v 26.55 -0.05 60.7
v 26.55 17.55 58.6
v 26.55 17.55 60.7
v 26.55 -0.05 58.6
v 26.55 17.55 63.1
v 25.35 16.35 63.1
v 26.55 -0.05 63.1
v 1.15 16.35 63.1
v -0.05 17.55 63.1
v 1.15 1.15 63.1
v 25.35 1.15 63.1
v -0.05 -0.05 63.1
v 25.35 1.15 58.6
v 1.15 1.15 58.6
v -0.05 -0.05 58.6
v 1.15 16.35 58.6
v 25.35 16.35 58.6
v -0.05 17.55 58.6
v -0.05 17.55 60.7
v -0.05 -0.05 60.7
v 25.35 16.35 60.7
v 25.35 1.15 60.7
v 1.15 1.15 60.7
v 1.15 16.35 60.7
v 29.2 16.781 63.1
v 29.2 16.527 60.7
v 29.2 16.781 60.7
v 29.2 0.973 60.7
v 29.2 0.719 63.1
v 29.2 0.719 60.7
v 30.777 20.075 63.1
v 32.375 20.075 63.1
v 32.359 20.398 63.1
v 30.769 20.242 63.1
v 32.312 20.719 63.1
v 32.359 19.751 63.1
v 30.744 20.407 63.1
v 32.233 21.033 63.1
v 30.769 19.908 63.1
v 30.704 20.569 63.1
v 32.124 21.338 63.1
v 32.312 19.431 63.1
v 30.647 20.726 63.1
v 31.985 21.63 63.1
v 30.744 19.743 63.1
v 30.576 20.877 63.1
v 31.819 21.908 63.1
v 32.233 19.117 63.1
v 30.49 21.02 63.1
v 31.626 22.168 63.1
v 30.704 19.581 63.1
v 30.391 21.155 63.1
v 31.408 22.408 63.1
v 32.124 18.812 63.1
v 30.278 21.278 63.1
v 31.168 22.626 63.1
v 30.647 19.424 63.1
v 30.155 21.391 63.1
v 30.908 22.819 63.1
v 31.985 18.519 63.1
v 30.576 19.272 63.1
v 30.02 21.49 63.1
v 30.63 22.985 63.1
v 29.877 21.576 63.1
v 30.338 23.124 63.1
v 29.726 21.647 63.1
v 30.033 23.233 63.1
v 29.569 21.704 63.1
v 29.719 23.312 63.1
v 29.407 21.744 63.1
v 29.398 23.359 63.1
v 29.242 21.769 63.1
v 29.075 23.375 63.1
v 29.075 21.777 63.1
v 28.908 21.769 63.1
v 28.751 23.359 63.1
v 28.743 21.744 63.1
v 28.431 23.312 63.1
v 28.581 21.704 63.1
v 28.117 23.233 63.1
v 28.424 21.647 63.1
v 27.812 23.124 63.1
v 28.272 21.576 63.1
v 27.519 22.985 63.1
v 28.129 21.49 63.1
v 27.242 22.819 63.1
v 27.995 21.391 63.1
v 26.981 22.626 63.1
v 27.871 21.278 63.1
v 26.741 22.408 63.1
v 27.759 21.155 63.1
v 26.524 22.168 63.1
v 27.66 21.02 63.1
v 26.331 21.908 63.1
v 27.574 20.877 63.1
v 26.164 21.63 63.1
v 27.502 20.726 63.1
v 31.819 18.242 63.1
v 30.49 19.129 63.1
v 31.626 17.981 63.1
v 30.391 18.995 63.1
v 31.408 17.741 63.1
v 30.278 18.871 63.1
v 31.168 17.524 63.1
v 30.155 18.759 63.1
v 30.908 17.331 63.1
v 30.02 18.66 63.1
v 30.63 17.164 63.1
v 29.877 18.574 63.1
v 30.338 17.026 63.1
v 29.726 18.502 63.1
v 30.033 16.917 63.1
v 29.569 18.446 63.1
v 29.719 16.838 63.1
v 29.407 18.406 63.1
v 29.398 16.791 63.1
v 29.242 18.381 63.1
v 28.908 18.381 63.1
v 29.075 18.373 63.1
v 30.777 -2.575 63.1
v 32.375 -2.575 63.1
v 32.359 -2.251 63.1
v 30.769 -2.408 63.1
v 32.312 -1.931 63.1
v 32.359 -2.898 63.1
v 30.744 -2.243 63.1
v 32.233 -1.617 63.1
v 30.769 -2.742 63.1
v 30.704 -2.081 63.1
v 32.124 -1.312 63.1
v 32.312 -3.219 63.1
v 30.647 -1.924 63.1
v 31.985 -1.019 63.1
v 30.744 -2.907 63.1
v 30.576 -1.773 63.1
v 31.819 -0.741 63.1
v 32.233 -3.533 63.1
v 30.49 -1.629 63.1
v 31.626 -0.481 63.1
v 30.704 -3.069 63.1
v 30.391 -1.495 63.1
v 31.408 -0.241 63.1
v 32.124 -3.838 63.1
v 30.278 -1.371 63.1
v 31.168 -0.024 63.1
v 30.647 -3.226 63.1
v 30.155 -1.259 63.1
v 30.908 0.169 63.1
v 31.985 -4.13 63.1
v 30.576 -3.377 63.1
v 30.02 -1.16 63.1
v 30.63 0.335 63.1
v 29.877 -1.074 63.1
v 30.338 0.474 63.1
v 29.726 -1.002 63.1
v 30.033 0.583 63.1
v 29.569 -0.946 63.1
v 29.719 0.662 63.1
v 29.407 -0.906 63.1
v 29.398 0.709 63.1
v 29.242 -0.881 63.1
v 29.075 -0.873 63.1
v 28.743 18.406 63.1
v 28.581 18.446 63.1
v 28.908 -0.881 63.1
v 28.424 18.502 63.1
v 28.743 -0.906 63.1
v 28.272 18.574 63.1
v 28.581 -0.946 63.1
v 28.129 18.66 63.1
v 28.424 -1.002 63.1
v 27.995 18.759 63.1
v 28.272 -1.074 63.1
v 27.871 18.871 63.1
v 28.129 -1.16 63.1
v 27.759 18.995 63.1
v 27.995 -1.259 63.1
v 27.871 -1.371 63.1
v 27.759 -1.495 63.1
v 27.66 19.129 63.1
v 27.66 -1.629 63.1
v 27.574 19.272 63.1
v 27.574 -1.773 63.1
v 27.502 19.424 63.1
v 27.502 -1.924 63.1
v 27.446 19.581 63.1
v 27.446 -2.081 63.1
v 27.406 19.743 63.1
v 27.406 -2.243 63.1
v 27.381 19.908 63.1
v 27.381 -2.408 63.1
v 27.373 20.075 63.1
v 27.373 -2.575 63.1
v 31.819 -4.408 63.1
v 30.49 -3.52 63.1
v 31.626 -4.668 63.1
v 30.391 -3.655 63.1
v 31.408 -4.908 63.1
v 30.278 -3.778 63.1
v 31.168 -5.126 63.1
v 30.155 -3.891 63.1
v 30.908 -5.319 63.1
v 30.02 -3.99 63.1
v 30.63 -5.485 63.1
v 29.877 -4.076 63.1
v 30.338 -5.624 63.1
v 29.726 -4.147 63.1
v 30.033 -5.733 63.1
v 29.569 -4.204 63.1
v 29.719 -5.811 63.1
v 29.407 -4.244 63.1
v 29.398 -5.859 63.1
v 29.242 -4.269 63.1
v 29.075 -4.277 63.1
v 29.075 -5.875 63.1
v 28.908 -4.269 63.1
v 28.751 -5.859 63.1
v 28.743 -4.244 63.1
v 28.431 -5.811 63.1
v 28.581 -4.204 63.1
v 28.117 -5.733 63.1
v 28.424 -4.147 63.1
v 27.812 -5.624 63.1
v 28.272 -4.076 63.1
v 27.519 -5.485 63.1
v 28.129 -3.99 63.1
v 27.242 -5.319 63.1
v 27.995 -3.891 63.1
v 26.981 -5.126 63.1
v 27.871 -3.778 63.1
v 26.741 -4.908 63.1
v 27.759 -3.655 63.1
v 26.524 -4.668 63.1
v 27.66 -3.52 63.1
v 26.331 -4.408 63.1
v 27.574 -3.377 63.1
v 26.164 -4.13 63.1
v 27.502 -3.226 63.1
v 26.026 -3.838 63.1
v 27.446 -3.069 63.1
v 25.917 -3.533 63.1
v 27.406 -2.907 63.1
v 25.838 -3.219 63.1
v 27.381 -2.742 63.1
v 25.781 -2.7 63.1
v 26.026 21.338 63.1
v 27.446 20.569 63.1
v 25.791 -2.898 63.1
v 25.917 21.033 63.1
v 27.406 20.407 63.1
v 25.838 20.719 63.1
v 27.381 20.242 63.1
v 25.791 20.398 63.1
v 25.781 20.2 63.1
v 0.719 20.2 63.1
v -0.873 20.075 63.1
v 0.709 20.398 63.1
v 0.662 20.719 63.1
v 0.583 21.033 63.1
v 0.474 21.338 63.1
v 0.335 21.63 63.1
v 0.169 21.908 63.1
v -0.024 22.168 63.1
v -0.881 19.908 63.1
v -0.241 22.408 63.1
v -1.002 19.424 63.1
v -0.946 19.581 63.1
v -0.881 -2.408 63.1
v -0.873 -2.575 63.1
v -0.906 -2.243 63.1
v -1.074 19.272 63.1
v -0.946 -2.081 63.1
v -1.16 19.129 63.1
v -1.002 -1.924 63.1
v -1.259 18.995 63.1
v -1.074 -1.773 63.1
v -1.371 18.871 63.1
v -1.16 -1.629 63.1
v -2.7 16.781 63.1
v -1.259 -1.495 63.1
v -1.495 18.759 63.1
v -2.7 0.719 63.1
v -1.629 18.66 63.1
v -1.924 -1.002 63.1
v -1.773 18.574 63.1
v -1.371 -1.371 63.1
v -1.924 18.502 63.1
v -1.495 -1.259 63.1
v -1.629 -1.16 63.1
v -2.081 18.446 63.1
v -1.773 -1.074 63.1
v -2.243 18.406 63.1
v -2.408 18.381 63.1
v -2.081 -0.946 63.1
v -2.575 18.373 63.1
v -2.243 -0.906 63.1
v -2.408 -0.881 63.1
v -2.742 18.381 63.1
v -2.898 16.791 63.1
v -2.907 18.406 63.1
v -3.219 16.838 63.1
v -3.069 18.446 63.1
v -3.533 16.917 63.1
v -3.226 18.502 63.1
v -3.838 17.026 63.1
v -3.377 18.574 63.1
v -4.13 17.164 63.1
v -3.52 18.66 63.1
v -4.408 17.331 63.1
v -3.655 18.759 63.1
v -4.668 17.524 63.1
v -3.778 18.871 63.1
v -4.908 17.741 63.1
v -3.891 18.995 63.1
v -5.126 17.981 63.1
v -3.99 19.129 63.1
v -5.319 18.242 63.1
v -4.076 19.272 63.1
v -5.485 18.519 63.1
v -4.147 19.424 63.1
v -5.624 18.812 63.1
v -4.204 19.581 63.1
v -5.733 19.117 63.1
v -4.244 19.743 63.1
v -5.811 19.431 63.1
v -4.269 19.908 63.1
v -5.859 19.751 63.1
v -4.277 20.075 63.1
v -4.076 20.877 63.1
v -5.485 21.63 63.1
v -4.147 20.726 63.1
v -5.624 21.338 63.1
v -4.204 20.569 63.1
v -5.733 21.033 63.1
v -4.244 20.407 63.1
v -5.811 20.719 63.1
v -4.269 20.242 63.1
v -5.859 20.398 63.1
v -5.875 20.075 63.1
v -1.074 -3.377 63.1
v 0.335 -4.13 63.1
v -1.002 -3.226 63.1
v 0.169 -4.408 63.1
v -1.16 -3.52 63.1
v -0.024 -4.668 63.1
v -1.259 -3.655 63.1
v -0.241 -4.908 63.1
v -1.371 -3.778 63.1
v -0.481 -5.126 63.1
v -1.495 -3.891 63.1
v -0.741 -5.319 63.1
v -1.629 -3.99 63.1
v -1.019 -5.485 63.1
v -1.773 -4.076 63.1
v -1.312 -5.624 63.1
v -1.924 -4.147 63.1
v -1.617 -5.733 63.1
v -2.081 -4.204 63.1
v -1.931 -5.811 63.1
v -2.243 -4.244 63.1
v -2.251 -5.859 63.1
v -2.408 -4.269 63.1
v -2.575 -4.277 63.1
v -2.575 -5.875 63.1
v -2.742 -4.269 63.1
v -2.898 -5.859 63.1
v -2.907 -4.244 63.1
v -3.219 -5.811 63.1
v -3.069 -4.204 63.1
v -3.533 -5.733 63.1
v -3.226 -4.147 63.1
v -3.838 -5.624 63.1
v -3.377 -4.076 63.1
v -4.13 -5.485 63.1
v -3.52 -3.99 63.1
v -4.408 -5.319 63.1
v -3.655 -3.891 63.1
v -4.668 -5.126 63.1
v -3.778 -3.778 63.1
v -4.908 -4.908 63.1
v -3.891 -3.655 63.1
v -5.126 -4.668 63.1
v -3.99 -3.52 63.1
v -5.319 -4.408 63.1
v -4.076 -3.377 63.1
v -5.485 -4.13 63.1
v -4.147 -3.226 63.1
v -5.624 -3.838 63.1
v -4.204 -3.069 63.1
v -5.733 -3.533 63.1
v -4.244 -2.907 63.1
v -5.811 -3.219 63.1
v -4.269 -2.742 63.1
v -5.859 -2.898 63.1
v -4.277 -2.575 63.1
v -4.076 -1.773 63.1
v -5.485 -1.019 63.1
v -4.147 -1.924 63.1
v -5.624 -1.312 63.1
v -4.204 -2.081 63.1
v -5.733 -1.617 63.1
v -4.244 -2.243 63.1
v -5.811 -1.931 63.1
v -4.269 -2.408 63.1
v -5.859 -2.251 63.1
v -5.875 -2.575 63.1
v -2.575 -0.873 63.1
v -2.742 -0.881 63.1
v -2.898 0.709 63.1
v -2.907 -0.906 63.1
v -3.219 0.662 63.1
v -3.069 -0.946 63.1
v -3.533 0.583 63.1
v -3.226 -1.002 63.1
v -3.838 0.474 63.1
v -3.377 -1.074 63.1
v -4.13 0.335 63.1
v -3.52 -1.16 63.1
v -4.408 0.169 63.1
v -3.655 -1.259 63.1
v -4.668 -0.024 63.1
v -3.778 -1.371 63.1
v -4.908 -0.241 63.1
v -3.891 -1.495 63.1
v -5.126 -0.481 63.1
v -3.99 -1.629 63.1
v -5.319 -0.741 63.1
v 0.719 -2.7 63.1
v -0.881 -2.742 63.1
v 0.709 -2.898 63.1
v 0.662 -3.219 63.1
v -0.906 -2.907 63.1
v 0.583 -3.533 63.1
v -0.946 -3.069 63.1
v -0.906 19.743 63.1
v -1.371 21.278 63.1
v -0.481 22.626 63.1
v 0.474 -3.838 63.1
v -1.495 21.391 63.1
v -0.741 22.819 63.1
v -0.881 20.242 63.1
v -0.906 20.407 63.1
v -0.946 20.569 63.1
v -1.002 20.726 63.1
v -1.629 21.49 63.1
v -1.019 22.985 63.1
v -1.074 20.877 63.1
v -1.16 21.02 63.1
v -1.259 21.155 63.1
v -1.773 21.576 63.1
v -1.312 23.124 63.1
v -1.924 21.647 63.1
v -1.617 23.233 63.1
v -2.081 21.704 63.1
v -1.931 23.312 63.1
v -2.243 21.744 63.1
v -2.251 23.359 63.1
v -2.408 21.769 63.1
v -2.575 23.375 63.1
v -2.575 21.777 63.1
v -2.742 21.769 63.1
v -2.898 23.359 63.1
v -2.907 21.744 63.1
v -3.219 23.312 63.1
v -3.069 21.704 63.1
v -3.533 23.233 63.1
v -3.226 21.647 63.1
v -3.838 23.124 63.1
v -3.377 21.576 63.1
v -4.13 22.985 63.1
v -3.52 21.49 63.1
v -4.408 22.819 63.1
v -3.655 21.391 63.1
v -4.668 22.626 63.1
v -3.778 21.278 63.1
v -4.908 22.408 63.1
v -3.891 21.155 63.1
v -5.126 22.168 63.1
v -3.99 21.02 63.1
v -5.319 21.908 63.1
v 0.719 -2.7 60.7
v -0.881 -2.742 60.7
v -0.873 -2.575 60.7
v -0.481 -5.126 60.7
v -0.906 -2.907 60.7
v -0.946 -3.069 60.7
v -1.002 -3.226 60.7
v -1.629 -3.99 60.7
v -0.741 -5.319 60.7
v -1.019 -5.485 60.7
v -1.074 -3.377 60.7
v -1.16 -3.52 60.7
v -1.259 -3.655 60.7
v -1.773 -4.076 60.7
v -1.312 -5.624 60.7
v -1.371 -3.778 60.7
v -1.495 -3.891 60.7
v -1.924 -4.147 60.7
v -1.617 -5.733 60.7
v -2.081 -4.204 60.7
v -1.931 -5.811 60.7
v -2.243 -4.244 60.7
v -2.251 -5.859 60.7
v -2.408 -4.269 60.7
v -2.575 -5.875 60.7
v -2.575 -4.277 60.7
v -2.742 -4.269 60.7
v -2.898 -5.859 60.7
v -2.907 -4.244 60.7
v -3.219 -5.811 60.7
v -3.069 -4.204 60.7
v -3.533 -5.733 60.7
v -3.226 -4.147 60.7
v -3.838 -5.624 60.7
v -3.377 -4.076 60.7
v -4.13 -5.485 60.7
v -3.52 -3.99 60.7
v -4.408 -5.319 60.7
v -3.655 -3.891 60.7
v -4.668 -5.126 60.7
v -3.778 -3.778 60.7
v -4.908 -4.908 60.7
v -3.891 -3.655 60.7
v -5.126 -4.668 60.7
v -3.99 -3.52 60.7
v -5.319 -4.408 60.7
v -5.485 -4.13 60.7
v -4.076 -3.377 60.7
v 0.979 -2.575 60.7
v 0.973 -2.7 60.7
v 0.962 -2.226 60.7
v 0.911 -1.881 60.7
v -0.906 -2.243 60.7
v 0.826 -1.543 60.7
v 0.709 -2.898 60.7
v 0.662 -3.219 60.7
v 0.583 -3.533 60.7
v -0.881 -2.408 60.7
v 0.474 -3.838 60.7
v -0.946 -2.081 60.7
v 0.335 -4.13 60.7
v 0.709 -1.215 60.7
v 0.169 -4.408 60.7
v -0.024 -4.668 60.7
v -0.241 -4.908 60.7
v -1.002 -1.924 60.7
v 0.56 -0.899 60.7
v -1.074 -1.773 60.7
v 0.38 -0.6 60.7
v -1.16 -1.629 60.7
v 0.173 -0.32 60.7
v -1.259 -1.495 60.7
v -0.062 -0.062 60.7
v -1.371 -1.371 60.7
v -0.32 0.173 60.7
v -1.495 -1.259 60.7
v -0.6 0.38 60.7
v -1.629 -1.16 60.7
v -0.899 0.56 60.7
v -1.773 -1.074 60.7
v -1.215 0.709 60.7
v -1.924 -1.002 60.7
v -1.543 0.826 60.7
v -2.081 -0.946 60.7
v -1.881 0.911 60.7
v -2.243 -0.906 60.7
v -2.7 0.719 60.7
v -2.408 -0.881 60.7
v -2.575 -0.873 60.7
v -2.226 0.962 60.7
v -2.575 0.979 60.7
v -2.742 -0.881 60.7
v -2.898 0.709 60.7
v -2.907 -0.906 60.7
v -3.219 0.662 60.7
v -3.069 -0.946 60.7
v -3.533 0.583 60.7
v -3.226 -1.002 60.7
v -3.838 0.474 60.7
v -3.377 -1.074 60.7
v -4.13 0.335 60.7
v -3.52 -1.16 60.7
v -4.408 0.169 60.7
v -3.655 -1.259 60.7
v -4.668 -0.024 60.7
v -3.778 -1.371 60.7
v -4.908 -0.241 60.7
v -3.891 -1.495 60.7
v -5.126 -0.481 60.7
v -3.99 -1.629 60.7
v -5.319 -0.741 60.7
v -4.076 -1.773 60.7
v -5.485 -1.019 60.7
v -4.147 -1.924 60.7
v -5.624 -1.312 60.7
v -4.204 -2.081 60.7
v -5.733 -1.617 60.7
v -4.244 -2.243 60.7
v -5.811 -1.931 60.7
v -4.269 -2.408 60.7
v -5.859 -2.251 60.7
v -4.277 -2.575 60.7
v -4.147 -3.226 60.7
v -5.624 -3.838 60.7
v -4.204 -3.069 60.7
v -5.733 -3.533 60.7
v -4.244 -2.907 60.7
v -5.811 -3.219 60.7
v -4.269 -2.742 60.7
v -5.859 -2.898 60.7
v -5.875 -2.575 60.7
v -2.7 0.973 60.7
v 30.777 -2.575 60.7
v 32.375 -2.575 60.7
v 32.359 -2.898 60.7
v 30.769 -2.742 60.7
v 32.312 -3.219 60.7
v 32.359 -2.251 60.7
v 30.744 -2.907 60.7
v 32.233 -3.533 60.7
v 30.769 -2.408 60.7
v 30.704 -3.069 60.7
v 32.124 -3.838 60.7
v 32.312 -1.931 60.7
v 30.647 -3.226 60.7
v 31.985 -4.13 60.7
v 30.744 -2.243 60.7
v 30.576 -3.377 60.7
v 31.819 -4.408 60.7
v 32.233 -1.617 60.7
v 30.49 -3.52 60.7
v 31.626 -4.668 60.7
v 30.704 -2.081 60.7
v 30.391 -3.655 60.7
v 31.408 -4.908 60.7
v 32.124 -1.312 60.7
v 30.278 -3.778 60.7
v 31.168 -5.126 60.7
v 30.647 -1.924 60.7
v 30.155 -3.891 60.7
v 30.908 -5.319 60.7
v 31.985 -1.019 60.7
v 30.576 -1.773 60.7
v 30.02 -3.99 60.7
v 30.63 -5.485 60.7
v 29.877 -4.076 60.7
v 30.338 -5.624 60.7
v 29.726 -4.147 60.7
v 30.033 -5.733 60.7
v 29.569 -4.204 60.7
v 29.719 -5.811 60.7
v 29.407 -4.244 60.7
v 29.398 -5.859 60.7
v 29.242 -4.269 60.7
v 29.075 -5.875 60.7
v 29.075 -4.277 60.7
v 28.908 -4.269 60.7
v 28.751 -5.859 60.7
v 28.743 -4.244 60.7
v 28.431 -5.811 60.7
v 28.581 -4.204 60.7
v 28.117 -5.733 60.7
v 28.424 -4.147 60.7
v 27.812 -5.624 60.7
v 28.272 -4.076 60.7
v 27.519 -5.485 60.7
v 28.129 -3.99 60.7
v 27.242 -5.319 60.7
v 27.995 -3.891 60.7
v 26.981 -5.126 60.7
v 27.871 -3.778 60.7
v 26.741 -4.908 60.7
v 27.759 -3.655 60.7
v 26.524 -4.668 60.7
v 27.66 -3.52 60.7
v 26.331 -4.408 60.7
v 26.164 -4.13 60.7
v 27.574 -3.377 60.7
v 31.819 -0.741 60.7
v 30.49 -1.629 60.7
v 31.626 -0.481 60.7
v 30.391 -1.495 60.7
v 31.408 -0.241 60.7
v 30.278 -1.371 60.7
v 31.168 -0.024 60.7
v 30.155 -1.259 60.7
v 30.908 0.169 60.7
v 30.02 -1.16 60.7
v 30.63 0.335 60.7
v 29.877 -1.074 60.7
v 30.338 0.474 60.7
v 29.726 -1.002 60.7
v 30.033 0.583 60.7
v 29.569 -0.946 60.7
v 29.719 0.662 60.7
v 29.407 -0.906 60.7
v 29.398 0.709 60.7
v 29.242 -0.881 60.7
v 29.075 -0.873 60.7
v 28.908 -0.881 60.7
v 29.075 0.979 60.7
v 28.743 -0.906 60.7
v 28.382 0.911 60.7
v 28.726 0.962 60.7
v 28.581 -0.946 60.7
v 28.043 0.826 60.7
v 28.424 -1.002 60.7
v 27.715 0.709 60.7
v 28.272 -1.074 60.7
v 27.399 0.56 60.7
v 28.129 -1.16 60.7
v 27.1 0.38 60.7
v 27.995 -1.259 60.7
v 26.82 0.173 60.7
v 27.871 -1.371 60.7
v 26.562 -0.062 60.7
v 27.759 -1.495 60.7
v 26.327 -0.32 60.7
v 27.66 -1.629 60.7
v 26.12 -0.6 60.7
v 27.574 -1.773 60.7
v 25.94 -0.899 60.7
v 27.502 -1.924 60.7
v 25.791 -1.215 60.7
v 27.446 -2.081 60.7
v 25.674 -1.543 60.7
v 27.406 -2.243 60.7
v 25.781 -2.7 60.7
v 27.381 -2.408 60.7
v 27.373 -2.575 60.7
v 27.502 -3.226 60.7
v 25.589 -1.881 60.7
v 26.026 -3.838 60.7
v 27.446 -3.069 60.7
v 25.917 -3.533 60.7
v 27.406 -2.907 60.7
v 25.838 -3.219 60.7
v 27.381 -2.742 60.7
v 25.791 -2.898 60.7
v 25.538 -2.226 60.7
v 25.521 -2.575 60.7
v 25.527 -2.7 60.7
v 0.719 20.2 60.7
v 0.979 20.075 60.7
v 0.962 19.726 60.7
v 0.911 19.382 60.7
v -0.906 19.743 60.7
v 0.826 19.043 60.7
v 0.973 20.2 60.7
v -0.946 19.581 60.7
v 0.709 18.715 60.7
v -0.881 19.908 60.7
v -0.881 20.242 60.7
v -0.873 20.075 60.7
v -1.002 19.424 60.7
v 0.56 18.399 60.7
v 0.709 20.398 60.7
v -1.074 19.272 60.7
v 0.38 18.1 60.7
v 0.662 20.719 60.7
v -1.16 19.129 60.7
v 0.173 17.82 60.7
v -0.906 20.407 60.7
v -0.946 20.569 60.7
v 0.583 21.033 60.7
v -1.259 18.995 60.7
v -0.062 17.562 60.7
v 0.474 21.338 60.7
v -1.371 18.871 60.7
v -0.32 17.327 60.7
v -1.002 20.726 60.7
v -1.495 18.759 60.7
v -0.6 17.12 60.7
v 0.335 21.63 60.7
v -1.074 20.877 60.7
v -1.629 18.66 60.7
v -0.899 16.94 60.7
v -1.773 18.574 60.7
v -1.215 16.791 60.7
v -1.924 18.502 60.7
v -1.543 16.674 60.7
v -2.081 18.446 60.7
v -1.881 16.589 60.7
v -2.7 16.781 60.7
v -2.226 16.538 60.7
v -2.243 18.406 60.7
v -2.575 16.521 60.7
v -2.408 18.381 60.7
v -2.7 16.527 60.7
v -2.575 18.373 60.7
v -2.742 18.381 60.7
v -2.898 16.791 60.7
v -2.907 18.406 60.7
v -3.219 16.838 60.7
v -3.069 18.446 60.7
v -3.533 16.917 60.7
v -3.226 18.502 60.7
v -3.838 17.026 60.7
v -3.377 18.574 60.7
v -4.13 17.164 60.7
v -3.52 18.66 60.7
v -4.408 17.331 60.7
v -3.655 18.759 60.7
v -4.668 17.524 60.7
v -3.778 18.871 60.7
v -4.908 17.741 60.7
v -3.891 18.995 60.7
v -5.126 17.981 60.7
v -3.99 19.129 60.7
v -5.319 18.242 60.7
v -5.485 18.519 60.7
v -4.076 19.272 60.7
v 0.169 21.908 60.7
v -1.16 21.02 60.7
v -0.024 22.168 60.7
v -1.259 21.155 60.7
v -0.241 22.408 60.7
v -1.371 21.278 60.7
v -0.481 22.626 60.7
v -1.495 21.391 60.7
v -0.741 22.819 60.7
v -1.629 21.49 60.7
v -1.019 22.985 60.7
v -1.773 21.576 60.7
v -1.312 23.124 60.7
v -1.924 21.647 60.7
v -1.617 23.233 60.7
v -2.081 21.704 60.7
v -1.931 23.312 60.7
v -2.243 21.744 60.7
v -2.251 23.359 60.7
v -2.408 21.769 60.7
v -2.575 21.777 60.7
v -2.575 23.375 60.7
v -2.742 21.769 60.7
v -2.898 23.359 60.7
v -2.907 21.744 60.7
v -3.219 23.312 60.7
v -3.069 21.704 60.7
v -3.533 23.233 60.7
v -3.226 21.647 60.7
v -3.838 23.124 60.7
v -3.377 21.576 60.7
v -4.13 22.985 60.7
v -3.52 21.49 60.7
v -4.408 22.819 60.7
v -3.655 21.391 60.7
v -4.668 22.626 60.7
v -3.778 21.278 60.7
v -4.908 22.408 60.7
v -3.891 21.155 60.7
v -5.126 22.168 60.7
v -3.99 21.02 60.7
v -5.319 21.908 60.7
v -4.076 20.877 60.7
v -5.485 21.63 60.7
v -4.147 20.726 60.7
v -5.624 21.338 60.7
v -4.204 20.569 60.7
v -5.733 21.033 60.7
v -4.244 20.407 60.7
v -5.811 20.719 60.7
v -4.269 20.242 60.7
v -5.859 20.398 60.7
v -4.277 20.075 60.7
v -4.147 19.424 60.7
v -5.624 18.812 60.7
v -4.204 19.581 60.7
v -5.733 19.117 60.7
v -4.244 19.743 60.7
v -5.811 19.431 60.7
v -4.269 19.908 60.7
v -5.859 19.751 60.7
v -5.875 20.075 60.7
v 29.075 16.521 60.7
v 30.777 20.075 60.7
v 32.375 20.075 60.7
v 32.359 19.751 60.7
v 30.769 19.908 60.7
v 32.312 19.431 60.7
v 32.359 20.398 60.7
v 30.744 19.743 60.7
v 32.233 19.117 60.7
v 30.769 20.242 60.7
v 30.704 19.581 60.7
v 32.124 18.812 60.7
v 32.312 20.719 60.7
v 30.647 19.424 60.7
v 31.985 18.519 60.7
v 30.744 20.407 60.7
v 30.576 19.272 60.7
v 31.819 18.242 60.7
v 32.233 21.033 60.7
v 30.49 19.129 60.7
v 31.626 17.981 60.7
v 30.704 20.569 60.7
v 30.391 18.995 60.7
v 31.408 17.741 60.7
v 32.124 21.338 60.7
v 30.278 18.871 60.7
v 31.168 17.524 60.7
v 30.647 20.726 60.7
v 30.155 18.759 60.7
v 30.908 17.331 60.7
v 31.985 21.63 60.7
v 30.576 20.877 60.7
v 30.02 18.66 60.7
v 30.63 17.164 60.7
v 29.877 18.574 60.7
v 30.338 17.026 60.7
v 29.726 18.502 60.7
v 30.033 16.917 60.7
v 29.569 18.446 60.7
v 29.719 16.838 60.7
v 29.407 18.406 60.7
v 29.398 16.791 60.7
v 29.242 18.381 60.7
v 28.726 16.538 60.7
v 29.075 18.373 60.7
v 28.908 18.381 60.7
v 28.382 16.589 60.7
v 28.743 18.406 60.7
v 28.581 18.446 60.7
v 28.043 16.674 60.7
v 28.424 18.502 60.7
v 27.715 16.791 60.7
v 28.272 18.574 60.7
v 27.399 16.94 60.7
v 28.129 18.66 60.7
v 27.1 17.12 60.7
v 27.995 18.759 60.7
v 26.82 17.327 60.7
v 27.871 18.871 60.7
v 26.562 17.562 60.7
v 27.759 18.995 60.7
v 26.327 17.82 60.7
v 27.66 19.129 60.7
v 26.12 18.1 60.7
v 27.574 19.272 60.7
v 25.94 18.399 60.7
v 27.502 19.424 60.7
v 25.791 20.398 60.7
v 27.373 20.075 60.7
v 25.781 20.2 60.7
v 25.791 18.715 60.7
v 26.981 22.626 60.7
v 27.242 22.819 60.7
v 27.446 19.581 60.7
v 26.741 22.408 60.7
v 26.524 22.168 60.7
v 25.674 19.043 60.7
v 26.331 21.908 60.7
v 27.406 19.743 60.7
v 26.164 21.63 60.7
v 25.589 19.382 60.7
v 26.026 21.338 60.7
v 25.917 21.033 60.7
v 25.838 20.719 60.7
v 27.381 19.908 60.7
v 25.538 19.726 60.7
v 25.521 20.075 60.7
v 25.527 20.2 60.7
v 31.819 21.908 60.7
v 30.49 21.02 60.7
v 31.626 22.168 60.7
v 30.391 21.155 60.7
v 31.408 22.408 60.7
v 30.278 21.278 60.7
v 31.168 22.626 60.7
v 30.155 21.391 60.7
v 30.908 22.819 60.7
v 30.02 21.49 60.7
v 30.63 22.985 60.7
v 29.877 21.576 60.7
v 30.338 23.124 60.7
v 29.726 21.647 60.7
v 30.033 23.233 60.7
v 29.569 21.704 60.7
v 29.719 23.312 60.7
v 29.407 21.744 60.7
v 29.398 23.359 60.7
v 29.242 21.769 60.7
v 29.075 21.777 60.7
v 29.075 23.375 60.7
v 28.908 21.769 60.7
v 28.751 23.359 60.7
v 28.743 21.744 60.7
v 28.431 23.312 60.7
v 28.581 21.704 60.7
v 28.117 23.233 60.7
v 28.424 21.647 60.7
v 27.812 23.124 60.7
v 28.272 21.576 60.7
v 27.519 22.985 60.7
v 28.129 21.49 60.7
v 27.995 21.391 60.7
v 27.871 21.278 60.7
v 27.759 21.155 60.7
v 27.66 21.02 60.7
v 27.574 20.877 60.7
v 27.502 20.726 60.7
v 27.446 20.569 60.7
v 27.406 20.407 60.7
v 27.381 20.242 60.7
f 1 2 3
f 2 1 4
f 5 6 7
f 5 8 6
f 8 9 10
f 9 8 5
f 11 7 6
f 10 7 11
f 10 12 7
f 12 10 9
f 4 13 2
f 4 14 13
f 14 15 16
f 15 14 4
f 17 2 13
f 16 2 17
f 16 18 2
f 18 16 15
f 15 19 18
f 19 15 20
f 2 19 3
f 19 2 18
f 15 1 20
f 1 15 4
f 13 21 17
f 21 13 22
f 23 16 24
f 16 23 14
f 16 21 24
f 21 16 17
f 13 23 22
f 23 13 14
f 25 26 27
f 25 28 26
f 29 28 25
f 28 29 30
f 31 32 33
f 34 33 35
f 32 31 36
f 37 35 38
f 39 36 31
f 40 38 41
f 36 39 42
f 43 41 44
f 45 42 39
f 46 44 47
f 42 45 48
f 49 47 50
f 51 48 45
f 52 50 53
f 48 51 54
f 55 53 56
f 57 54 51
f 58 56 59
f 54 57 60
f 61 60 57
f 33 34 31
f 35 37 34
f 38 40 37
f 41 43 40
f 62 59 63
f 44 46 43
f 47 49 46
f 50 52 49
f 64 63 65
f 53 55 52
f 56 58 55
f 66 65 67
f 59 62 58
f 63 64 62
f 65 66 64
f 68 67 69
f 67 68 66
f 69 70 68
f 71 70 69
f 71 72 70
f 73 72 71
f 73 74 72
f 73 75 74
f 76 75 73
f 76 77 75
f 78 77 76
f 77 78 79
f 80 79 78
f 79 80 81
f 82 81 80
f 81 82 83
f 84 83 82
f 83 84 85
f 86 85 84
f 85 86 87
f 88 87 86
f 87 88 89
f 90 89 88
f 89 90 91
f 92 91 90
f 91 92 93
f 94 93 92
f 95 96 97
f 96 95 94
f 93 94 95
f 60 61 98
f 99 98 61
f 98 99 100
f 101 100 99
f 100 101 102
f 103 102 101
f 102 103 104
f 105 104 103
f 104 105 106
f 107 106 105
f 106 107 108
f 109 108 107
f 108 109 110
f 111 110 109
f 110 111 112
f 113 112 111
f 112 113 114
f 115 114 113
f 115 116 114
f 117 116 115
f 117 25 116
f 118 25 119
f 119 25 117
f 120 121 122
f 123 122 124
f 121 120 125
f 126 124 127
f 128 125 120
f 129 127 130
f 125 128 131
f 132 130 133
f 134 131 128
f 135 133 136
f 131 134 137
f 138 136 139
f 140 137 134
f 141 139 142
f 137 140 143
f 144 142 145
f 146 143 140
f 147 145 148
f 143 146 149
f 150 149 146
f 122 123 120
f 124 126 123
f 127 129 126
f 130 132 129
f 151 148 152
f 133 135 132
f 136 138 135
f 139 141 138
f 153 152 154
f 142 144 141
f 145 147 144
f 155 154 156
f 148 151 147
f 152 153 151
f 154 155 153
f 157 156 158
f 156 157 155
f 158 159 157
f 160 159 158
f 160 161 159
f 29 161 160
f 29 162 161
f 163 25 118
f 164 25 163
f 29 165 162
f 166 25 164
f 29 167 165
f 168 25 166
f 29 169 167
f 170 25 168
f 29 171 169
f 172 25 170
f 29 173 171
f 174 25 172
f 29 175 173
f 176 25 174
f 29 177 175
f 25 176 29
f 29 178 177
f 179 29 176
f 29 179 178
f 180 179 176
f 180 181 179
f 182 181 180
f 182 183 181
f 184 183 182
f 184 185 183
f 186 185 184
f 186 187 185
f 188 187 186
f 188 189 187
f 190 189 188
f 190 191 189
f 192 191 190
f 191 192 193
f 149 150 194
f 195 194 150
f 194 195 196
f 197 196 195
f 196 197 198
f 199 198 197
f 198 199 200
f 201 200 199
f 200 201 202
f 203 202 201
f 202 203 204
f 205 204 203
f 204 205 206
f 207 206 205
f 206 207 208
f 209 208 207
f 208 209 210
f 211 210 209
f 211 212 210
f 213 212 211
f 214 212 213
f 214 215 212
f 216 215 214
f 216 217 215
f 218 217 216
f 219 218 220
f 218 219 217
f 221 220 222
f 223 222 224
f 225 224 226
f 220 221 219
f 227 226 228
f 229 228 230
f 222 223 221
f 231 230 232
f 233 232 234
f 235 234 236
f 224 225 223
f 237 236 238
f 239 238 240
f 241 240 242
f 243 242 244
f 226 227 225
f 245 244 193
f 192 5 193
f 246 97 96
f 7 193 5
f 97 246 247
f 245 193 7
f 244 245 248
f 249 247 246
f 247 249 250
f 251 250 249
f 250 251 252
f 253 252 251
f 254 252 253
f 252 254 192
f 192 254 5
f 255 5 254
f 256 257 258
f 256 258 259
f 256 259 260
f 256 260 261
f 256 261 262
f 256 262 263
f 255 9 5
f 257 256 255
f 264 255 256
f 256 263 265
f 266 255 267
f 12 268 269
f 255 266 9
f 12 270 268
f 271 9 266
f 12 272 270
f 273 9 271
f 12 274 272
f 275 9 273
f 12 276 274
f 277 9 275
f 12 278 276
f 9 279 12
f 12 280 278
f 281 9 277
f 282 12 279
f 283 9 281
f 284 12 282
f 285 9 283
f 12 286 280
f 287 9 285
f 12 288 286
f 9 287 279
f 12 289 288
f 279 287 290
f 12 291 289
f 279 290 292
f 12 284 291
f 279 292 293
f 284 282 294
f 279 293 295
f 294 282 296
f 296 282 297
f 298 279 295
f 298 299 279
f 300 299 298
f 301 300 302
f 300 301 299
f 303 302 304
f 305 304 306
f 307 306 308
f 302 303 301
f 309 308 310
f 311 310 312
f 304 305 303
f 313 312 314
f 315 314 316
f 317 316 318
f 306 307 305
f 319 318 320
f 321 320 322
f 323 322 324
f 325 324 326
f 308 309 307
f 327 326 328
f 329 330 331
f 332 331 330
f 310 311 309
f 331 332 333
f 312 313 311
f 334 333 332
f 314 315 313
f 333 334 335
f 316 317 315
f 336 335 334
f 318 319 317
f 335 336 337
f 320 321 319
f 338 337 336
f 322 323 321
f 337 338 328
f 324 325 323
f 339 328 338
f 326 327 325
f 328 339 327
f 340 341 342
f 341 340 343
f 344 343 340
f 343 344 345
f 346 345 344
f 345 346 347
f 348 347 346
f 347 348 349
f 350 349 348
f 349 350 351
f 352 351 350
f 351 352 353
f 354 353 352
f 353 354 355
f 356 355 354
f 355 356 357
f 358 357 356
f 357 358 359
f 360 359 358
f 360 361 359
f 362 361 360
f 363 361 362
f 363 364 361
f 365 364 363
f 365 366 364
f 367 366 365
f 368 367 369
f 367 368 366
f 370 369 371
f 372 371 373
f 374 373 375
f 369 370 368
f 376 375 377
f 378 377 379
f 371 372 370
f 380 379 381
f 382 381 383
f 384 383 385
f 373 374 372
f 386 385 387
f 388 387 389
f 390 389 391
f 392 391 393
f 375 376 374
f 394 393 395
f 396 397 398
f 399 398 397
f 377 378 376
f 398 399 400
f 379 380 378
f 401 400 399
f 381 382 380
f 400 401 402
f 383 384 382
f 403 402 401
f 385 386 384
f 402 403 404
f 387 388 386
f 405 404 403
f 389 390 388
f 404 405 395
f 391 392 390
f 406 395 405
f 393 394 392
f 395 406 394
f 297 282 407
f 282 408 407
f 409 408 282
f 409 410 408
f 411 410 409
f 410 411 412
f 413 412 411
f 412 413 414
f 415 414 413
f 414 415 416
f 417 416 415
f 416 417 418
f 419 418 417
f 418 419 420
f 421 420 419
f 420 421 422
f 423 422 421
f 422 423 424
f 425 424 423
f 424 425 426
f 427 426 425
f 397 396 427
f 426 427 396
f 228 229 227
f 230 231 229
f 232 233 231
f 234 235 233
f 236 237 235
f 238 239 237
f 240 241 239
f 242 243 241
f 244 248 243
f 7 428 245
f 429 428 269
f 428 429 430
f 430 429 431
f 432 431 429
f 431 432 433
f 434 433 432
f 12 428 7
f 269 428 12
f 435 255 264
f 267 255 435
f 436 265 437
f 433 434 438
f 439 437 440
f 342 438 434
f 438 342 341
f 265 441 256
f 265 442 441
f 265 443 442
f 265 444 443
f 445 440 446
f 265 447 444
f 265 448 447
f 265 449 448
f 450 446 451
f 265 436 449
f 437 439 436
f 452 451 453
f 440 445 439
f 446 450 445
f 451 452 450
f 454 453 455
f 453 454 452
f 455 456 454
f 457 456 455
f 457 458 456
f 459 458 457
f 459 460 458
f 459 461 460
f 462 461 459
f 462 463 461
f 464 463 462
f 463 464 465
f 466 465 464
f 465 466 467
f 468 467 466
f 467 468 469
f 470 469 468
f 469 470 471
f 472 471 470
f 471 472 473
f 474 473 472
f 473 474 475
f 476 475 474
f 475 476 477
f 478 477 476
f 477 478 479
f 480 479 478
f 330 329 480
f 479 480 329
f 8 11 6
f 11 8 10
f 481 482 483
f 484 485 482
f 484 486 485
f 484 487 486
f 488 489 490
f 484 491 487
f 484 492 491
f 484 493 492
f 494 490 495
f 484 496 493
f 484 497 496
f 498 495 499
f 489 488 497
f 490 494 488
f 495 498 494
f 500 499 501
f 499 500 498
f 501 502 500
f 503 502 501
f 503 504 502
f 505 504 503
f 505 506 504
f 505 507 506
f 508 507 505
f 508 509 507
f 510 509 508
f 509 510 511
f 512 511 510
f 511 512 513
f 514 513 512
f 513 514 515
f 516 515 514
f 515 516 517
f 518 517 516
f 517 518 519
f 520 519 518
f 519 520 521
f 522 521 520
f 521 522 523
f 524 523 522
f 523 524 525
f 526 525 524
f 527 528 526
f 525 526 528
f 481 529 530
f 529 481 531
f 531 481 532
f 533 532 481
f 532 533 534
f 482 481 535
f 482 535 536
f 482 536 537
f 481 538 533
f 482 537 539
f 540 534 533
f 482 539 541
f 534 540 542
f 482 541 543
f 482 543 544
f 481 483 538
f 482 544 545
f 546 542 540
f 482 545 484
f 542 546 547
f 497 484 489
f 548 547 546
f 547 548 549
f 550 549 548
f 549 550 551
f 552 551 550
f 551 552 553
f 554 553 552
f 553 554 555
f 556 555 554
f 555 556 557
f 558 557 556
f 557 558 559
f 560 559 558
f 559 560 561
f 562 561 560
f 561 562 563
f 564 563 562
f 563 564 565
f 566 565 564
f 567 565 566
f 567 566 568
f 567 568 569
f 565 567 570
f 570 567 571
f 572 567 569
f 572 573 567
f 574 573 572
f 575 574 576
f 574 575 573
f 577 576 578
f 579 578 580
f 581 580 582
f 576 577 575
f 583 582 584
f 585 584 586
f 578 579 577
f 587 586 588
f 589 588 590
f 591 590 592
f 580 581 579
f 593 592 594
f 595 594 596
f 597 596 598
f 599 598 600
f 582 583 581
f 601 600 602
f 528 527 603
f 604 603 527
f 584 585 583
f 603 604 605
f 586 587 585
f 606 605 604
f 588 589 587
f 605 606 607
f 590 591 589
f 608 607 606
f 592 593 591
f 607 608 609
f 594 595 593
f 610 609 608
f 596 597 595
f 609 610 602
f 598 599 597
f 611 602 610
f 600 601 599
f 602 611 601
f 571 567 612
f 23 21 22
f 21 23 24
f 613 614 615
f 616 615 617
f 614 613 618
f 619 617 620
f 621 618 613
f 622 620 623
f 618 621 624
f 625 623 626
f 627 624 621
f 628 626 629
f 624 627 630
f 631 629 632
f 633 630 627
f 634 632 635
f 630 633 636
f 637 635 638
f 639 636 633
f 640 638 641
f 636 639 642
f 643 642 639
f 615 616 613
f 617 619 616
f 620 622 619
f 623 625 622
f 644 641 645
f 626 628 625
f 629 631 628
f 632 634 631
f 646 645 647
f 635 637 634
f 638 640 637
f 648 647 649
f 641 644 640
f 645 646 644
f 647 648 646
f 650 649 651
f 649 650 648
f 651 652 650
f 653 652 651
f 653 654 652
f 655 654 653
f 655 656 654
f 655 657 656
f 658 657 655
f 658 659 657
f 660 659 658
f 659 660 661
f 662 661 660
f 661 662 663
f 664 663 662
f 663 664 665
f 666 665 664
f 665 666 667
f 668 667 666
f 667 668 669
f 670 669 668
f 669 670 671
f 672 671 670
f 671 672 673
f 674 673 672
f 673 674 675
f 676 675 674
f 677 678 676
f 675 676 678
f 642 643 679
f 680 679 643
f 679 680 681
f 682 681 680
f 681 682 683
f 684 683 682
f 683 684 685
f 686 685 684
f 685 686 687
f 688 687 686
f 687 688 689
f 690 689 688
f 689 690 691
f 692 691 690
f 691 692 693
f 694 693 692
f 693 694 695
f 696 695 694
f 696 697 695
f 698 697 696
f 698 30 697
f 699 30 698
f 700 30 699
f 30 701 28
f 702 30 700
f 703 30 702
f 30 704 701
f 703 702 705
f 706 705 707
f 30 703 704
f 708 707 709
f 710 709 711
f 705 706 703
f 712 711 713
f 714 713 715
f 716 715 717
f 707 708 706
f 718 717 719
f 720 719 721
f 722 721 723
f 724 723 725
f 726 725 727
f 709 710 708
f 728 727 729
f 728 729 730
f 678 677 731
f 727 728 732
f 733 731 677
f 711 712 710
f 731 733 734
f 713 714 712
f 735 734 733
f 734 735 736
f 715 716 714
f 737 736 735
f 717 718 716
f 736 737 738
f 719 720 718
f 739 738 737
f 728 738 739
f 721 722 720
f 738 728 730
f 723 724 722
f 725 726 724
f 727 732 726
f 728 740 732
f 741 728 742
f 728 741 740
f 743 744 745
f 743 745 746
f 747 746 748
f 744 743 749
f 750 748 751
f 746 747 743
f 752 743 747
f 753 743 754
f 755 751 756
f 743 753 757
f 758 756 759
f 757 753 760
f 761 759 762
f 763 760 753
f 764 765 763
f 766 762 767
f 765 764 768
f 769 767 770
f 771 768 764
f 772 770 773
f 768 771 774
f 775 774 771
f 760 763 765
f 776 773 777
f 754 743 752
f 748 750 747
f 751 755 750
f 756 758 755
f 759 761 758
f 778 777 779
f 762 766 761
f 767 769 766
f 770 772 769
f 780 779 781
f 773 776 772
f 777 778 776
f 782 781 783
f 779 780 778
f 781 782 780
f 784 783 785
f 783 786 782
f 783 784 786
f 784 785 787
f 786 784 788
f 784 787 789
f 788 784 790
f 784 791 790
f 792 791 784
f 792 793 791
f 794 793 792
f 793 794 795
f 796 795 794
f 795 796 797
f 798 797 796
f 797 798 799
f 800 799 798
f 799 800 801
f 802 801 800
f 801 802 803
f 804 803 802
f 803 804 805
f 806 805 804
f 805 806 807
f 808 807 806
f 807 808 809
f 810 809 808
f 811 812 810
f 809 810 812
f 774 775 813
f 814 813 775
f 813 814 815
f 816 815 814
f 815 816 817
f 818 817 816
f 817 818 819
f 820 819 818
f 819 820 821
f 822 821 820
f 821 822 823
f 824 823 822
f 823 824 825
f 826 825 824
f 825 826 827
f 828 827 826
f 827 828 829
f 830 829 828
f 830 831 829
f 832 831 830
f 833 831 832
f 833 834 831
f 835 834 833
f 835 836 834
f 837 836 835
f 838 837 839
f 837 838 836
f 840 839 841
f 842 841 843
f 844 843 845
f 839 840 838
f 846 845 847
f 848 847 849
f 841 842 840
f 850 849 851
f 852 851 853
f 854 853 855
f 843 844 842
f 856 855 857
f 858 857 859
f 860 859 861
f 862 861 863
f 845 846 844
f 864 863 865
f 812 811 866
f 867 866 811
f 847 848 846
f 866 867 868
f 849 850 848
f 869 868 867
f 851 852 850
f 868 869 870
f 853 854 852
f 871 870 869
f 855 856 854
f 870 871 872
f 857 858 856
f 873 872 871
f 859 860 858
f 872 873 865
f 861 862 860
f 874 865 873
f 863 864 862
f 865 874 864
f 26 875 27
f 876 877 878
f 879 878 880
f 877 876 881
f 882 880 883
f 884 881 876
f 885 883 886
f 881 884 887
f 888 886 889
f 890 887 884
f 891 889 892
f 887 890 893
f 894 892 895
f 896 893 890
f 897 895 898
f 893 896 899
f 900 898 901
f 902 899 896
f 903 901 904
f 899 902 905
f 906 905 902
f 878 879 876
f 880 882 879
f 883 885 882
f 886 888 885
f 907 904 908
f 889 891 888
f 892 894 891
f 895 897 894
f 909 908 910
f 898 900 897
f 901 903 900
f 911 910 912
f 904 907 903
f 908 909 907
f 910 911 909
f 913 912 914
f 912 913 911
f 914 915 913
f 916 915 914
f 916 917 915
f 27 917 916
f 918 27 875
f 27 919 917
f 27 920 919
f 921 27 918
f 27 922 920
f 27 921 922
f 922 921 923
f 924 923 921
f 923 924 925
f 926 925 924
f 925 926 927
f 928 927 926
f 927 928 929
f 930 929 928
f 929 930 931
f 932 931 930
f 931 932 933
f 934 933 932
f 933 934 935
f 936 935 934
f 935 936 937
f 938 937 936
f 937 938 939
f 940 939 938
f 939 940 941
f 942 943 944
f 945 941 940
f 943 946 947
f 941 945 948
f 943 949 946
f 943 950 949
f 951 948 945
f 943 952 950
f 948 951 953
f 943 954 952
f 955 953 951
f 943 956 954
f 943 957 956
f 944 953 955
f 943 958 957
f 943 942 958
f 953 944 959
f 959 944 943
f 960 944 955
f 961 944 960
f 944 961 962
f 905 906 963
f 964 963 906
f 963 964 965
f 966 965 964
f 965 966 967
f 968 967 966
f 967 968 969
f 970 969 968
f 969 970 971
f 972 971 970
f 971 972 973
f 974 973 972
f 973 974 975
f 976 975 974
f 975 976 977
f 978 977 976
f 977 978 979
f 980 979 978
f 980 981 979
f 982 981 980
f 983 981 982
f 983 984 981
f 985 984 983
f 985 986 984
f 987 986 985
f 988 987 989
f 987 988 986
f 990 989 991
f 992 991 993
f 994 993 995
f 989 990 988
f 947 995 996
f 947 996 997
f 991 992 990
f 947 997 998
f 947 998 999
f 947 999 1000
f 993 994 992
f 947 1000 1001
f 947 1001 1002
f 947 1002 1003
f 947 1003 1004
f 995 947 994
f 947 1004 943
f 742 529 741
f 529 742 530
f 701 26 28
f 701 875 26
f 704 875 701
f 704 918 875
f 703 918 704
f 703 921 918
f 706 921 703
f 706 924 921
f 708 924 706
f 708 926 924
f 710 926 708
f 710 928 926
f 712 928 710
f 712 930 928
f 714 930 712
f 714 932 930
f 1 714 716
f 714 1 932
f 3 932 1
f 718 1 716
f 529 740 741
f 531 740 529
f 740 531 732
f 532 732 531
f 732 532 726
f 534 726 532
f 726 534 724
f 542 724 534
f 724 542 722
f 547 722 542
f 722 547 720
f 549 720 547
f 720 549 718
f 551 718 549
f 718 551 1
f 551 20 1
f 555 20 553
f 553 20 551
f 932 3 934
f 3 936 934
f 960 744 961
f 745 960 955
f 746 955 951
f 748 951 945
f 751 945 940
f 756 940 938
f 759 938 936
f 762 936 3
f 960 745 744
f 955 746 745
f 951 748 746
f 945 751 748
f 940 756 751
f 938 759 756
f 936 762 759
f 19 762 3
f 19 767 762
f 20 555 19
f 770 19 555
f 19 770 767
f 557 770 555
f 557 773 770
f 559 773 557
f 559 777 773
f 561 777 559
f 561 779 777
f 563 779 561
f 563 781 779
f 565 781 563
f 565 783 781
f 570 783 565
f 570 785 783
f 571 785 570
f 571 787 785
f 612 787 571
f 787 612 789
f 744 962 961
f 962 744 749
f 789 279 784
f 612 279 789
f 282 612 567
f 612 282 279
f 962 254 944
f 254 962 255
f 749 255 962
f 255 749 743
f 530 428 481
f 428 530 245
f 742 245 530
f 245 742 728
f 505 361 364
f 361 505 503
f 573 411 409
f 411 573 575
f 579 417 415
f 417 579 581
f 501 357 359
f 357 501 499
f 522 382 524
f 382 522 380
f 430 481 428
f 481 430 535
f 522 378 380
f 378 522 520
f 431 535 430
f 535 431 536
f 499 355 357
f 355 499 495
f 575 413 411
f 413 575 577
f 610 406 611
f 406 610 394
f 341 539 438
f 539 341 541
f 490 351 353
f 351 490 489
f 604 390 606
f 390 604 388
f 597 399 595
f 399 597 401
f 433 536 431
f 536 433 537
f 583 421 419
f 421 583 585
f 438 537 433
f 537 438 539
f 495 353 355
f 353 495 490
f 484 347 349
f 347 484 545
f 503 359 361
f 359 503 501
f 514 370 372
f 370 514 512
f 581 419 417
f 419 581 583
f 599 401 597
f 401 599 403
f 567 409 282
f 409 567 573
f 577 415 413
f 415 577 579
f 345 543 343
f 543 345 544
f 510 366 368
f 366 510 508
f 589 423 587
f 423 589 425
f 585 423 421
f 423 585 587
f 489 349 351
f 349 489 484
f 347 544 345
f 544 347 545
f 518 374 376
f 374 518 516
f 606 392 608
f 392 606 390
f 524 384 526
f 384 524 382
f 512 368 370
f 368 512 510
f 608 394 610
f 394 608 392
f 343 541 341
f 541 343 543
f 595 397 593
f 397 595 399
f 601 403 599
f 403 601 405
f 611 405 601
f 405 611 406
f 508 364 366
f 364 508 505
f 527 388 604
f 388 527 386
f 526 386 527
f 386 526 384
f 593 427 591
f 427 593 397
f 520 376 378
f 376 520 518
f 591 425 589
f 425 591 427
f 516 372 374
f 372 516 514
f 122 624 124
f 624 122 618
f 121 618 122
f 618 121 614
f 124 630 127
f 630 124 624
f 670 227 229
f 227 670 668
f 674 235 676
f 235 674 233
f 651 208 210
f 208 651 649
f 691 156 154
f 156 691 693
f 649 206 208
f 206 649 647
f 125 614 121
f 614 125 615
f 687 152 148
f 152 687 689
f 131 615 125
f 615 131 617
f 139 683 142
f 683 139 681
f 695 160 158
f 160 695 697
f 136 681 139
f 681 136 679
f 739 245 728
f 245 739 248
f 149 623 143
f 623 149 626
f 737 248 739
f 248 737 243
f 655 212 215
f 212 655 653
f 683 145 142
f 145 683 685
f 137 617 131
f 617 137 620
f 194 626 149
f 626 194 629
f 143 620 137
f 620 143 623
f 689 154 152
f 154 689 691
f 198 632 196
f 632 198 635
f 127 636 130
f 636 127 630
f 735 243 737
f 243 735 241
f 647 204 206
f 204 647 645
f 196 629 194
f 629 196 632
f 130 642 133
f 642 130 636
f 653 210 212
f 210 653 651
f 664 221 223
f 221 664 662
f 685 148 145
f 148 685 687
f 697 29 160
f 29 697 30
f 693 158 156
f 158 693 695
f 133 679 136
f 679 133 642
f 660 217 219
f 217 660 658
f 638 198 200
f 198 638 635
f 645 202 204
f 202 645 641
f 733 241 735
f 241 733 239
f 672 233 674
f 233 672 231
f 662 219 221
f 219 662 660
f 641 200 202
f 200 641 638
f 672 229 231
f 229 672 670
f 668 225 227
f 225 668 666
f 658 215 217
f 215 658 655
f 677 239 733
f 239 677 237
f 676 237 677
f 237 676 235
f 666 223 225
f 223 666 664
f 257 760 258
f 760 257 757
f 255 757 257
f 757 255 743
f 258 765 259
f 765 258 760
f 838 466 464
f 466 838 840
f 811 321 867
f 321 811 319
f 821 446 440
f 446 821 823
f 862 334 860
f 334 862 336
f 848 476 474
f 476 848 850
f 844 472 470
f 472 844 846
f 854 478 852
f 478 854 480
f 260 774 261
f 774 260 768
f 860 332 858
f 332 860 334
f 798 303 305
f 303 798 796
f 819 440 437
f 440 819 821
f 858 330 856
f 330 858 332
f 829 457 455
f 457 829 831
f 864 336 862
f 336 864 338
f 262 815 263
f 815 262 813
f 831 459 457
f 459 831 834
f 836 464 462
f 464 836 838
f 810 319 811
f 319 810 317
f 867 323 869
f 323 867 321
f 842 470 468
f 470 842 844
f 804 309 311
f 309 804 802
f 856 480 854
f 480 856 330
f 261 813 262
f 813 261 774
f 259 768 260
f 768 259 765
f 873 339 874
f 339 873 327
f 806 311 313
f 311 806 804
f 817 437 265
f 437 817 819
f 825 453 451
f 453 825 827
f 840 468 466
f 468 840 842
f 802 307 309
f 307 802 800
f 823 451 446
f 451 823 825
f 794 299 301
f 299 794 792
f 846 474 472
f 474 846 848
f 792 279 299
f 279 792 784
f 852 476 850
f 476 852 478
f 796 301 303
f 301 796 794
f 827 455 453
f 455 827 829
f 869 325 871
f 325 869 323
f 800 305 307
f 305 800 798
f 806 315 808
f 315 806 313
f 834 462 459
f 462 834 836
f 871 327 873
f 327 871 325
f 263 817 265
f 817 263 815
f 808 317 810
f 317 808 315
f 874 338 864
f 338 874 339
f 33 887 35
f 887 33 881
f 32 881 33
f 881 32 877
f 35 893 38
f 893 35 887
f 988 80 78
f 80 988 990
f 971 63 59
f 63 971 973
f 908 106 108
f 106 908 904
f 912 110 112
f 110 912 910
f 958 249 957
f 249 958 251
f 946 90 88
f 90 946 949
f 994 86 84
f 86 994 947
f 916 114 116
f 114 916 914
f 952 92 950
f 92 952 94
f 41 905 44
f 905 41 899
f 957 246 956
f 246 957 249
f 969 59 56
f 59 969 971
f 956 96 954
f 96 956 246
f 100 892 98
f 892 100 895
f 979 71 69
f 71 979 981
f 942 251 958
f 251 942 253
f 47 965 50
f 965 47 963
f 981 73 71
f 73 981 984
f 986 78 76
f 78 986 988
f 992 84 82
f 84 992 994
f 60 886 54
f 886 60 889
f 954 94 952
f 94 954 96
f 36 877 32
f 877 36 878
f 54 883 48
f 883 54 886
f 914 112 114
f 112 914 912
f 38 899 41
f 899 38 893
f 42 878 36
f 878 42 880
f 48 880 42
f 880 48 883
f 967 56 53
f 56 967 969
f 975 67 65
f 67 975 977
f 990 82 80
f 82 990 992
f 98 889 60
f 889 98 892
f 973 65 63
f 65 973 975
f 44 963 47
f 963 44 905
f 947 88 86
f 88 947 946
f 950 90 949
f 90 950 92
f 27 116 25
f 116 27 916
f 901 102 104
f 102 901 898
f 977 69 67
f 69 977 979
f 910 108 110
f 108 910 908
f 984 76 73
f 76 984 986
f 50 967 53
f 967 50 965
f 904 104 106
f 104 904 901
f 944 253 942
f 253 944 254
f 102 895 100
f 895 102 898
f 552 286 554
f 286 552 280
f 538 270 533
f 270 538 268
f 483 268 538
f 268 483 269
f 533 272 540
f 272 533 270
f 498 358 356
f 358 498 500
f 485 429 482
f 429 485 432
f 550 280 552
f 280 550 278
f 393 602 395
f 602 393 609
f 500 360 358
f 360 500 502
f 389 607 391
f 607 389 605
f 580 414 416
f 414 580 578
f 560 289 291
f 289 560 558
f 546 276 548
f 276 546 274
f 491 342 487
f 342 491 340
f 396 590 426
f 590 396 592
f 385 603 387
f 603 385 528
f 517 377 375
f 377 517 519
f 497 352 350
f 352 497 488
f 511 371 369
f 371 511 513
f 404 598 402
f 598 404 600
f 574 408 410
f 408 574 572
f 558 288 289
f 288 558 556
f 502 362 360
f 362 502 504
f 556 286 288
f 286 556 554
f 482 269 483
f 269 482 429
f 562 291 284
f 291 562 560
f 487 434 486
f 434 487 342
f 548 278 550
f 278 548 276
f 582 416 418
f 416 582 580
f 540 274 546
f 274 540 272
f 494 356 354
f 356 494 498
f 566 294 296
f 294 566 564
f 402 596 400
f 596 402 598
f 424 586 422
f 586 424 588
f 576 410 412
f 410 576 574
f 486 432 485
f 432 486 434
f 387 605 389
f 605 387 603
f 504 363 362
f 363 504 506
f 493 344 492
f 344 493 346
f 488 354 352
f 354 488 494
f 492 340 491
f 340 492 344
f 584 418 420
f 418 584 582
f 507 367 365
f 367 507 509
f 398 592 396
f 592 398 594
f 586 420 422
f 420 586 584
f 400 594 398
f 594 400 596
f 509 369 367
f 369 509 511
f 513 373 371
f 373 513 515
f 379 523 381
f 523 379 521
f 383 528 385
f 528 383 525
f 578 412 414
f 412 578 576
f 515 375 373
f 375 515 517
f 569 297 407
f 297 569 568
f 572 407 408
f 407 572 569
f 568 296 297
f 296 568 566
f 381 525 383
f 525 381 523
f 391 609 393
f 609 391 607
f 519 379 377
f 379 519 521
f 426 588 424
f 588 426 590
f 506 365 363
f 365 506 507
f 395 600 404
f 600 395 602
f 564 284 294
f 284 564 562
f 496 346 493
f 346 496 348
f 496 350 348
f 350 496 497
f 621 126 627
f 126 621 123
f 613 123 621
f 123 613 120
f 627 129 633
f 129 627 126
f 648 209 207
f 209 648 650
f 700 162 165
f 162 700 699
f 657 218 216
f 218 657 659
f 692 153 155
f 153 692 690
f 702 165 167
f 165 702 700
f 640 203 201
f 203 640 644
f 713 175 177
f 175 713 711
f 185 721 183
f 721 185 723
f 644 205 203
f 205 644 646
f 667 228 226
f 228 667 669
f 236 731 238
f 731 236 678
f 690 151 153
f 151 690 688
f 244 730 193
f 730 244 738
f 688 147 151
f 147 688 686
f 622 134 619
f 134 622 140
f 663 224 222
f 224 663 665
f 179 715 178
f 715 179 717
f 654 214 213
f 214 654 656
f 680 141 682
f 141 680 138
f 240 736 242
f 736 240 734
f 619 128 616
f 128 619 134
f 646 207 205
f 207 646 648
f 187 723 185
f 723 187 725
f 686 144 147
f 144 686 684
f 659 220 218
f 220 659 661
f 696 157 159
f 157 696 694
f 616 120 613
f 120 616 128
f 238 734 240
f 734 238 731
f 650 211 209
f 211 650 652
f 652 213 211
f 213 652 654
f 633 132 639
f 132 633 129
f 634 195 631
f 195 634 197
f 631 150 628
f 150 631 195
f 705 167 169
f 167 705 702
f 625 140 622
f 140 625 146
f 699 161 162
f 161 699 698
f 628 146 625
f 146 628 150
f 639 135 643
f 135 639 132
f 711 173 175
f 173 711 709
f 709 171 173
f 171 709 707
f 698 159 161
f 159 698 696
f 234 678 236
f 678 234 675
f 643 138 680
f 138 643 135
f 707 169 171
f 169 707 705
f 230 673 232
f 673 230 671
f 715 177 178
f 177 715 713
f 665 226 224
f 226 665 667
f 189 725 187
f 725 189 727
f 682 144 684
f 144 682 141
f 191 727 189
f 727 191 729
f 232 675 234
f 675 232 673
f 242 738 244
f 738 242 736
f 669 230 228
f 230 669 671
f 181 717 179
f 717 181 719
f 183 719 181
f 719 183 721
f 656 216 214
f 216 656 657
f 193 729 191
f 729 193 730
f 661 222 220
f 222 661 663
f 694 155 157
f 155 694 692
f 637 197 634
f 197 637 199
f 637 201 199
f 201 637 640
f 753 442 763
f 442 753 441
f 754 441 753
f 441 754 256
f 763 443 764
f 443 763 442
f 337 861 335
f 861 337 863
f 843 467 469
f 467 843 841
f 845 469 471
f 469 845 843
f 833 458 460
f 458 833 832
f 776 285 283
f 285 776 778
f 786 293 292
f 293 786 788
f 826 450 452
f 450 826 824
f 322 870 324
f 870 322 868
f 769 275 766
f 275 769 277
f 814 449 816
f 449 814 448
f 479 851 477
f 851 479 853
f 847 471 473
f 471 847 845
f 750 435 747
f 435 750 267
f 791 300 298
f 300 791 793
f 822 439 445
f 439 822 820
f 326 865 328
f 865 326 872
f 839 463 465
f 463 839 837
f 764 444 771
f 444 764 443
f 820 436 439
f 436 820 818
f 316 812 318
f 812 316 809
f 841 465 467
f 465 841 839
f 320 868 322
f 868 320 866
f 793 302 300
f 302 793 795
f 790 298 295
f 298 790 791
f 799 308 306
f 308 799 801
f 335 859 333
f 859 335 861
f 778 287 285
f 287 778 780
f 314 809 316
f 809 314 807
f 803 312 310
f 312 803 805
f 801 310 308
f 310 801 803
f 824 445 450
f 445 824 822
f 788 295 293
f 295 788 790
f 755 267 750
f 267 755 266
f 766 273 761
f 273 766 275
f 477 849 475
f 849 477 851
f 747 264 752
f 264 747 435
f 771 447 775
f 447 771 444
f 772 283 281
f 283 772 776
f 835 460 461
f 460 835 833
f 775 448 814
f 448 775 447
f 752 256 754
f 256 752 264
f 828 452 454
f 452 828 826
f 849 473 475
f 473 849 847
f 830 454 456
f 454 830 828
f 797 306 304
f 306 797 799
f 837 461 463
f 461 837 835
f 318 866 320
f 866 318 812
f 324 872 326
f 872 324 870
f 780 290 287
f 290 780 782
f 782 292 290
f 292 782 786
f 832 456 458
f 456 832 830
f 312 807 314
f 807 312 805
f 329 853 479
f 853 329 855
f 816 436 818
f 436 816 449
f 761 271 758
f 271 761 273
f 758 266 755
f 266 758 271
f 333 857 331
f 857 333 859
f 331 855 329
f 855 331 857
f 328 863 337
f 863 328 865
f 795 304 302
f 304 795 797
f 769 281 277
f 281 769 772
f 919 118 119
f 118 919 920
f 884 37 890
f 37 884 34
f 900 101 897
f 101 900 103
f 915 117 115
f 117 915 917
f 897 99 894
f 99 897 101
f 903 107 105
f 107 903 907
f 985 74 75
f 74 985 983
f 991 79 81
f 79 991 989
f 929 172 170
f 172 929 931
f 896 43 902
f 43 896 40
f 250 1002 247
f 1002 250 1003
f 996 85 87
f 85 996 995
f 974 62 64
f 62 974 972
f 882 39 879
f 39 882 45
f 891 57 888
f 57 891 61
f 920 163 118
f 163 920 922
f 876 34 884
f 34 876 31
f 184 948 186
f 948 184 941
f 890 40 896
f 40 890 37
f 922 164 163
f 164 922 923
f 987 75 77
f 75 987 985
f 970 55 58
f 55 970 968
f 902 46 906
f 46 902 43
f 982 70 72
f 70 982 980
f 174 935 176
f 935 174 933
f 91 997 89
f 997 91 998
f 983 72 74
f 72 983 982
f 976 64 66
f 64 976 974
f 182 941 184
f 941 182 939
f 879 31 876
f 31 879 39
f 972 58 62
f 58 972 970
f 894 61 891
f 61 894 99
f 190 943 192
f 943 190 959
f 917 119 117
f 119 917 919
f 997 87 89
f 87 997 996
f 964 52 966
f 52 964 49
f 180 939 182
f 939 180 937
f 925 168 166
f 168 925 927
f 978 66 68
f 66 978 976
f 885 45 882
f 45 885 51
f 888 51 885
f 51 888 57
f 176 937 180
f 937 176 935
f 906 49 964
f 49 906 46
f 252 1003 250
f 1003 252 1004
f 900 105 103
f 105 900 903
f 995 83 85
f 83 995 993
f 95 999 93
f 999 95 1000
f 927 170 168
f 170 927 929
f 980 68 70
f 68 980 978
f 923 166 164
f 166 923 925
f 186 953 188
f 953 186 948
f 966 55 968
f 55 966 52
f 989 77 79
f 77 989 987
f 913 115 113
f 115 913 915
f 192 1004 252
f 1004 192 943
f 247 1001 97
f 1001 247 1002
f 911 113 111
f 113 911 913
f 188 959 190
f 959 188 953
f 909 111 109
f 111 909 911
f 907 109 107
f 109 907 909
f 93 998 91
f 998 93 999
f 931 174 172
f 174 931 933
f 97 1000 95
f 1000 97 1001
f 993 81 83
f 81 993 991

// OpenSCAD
// body lid
difference() {
  union() {
    // body lid (lid_plate)
    multmatrix([[1, 0, 0, 13.25], [0, 1, 0, 8.75], [0, 0, 1, 60.7], [0, 0, 0, 1]]) translate([-15.95, -11.45, 0]) cube([31.9, 22.9, 2.4]);
    // add lid_lip (lip)
    multmatrix([[1, 0, 0, 13.25], [0, 1, 0, 8.75], [0, 0, 1, 58.6], [0, 0, 0, 1]]) difference() { translate([-13.3, -8.8, 0]) cube([26.6, 17.6, 4.5]); translate([0, 0, -1]) translate([-12.1, -7.6, 0]) cube([24.2, 15.2, 6.5]); }
    // add boss_1_pad (pad)
    multmatrix([[1, 0, 0, -2.574874], [0, 1, 0, -2.574874], [0, 0, 1, 60.7], [0, 0, 0, 1]]) cylinder(h=2.4, d=6.6, $fn=64);
    // add boss_2_pad (pad)
    multmatrix([[1, 0, 0, 29.074874], [0, 1, 0, -2.574874], [0, 0, 1, 60.7], [0, 0, 0, 1]]) cylinder(h=2.4, d=6.6, $fn=64);
    // add boss_3_pad (pad)
    multmatrix([[1, 0, 0, -2.574874], [0, 1, 0, 20.074874], [0, 0, 1, 60.7], [0, 0, 0, 1]]) cylinder(h=2.4, d=6.6, $fn=64);
    // add boss_4_pad (pad)
    multmatrix([[1, 0, 0, 29.074874], [0, 1, 0, 20.074874], [0, 0, 1, 60.7], [0, 0, 0, 1]]) cylinder(h=2.4, d=6.6, $fn=64);
  }
  // cut boss_1_lid_hole (screw_hole)
  multmatrix([[1, 0, 0, -2.574874], [0, 1, 0, -2.574874], [0, 0, 1, 59.7], [0, 0, 0, 1]]) cylinder(h=4.4, d=3.4041, $fn=64);
  // cut boss_1_lip_notch (lip_notch)
  multmatrix([[1, 0, 0, -2.574874], [0, 1, 0, -2.574874], [0, 0, 1, 57.6], [0, 0, 0, 1]]) cylinder(h=3.1, d=7.108563, $fn=64);
  // cut boss_2_lid_hole (screw_hole)
  multmatrix([[1, 0, 0, 29.074874], [0, 1, 0, -2.574874], [0, 0, 1, 59.7], [0, 0, 0, 1]]) cylinder(h=4.4, d=3.4041, $fn=64);
  // cut boss_2_lip_notch (lip_notch)
  multmatrix([[1, 0, 0, 29.074874], [0, 1, 0, -2.574874], [0, 0, 1, 57.6], [0, 0, 0, 1]]) cylinder(h=3.1, d=7.108563, $fn=64);
  // cut boss_3_lid_hole (screw_hole)
  multmatrix([[1, 0, 0, -2.574874], [0, 1, 0, 20.074874], [0, 0, 1, 59.7], [0, 0, 0, 1]]) cylinder(h=4.4, d=3.4041, $fn=64);
  // cut boss_3_lip_notch (lip_notch)
  multmatrix([[1, 0, 0, -2.574874], [0, 1, 0, 20.074874], [0, 0, 1, 57.6], [0, 0, 0, 1]]) cylinder(h=3.1, d=7.108563, $fn=64);
  // cut boss_4_lid_hole (screw_hole)
  multmatrix([[1, 0, 0, 29.074874], [0, 1, 0, 20.074874], [0, 0, 1, 59.7], [0, 0, 0, 1]]) cylinder(h=4.4, d=3.4041, $fn=64);
  // cut boss_4_lip_notch (lip_notch)
  multmatrix([[1, 0, 0, 29.074874], [0, 1, 0, 20.074874], [0, 0, 1, 57.6], [0, 0, 0, 1]]) cylinder(h=3.1, d=7.108563, $fn=64);
}
